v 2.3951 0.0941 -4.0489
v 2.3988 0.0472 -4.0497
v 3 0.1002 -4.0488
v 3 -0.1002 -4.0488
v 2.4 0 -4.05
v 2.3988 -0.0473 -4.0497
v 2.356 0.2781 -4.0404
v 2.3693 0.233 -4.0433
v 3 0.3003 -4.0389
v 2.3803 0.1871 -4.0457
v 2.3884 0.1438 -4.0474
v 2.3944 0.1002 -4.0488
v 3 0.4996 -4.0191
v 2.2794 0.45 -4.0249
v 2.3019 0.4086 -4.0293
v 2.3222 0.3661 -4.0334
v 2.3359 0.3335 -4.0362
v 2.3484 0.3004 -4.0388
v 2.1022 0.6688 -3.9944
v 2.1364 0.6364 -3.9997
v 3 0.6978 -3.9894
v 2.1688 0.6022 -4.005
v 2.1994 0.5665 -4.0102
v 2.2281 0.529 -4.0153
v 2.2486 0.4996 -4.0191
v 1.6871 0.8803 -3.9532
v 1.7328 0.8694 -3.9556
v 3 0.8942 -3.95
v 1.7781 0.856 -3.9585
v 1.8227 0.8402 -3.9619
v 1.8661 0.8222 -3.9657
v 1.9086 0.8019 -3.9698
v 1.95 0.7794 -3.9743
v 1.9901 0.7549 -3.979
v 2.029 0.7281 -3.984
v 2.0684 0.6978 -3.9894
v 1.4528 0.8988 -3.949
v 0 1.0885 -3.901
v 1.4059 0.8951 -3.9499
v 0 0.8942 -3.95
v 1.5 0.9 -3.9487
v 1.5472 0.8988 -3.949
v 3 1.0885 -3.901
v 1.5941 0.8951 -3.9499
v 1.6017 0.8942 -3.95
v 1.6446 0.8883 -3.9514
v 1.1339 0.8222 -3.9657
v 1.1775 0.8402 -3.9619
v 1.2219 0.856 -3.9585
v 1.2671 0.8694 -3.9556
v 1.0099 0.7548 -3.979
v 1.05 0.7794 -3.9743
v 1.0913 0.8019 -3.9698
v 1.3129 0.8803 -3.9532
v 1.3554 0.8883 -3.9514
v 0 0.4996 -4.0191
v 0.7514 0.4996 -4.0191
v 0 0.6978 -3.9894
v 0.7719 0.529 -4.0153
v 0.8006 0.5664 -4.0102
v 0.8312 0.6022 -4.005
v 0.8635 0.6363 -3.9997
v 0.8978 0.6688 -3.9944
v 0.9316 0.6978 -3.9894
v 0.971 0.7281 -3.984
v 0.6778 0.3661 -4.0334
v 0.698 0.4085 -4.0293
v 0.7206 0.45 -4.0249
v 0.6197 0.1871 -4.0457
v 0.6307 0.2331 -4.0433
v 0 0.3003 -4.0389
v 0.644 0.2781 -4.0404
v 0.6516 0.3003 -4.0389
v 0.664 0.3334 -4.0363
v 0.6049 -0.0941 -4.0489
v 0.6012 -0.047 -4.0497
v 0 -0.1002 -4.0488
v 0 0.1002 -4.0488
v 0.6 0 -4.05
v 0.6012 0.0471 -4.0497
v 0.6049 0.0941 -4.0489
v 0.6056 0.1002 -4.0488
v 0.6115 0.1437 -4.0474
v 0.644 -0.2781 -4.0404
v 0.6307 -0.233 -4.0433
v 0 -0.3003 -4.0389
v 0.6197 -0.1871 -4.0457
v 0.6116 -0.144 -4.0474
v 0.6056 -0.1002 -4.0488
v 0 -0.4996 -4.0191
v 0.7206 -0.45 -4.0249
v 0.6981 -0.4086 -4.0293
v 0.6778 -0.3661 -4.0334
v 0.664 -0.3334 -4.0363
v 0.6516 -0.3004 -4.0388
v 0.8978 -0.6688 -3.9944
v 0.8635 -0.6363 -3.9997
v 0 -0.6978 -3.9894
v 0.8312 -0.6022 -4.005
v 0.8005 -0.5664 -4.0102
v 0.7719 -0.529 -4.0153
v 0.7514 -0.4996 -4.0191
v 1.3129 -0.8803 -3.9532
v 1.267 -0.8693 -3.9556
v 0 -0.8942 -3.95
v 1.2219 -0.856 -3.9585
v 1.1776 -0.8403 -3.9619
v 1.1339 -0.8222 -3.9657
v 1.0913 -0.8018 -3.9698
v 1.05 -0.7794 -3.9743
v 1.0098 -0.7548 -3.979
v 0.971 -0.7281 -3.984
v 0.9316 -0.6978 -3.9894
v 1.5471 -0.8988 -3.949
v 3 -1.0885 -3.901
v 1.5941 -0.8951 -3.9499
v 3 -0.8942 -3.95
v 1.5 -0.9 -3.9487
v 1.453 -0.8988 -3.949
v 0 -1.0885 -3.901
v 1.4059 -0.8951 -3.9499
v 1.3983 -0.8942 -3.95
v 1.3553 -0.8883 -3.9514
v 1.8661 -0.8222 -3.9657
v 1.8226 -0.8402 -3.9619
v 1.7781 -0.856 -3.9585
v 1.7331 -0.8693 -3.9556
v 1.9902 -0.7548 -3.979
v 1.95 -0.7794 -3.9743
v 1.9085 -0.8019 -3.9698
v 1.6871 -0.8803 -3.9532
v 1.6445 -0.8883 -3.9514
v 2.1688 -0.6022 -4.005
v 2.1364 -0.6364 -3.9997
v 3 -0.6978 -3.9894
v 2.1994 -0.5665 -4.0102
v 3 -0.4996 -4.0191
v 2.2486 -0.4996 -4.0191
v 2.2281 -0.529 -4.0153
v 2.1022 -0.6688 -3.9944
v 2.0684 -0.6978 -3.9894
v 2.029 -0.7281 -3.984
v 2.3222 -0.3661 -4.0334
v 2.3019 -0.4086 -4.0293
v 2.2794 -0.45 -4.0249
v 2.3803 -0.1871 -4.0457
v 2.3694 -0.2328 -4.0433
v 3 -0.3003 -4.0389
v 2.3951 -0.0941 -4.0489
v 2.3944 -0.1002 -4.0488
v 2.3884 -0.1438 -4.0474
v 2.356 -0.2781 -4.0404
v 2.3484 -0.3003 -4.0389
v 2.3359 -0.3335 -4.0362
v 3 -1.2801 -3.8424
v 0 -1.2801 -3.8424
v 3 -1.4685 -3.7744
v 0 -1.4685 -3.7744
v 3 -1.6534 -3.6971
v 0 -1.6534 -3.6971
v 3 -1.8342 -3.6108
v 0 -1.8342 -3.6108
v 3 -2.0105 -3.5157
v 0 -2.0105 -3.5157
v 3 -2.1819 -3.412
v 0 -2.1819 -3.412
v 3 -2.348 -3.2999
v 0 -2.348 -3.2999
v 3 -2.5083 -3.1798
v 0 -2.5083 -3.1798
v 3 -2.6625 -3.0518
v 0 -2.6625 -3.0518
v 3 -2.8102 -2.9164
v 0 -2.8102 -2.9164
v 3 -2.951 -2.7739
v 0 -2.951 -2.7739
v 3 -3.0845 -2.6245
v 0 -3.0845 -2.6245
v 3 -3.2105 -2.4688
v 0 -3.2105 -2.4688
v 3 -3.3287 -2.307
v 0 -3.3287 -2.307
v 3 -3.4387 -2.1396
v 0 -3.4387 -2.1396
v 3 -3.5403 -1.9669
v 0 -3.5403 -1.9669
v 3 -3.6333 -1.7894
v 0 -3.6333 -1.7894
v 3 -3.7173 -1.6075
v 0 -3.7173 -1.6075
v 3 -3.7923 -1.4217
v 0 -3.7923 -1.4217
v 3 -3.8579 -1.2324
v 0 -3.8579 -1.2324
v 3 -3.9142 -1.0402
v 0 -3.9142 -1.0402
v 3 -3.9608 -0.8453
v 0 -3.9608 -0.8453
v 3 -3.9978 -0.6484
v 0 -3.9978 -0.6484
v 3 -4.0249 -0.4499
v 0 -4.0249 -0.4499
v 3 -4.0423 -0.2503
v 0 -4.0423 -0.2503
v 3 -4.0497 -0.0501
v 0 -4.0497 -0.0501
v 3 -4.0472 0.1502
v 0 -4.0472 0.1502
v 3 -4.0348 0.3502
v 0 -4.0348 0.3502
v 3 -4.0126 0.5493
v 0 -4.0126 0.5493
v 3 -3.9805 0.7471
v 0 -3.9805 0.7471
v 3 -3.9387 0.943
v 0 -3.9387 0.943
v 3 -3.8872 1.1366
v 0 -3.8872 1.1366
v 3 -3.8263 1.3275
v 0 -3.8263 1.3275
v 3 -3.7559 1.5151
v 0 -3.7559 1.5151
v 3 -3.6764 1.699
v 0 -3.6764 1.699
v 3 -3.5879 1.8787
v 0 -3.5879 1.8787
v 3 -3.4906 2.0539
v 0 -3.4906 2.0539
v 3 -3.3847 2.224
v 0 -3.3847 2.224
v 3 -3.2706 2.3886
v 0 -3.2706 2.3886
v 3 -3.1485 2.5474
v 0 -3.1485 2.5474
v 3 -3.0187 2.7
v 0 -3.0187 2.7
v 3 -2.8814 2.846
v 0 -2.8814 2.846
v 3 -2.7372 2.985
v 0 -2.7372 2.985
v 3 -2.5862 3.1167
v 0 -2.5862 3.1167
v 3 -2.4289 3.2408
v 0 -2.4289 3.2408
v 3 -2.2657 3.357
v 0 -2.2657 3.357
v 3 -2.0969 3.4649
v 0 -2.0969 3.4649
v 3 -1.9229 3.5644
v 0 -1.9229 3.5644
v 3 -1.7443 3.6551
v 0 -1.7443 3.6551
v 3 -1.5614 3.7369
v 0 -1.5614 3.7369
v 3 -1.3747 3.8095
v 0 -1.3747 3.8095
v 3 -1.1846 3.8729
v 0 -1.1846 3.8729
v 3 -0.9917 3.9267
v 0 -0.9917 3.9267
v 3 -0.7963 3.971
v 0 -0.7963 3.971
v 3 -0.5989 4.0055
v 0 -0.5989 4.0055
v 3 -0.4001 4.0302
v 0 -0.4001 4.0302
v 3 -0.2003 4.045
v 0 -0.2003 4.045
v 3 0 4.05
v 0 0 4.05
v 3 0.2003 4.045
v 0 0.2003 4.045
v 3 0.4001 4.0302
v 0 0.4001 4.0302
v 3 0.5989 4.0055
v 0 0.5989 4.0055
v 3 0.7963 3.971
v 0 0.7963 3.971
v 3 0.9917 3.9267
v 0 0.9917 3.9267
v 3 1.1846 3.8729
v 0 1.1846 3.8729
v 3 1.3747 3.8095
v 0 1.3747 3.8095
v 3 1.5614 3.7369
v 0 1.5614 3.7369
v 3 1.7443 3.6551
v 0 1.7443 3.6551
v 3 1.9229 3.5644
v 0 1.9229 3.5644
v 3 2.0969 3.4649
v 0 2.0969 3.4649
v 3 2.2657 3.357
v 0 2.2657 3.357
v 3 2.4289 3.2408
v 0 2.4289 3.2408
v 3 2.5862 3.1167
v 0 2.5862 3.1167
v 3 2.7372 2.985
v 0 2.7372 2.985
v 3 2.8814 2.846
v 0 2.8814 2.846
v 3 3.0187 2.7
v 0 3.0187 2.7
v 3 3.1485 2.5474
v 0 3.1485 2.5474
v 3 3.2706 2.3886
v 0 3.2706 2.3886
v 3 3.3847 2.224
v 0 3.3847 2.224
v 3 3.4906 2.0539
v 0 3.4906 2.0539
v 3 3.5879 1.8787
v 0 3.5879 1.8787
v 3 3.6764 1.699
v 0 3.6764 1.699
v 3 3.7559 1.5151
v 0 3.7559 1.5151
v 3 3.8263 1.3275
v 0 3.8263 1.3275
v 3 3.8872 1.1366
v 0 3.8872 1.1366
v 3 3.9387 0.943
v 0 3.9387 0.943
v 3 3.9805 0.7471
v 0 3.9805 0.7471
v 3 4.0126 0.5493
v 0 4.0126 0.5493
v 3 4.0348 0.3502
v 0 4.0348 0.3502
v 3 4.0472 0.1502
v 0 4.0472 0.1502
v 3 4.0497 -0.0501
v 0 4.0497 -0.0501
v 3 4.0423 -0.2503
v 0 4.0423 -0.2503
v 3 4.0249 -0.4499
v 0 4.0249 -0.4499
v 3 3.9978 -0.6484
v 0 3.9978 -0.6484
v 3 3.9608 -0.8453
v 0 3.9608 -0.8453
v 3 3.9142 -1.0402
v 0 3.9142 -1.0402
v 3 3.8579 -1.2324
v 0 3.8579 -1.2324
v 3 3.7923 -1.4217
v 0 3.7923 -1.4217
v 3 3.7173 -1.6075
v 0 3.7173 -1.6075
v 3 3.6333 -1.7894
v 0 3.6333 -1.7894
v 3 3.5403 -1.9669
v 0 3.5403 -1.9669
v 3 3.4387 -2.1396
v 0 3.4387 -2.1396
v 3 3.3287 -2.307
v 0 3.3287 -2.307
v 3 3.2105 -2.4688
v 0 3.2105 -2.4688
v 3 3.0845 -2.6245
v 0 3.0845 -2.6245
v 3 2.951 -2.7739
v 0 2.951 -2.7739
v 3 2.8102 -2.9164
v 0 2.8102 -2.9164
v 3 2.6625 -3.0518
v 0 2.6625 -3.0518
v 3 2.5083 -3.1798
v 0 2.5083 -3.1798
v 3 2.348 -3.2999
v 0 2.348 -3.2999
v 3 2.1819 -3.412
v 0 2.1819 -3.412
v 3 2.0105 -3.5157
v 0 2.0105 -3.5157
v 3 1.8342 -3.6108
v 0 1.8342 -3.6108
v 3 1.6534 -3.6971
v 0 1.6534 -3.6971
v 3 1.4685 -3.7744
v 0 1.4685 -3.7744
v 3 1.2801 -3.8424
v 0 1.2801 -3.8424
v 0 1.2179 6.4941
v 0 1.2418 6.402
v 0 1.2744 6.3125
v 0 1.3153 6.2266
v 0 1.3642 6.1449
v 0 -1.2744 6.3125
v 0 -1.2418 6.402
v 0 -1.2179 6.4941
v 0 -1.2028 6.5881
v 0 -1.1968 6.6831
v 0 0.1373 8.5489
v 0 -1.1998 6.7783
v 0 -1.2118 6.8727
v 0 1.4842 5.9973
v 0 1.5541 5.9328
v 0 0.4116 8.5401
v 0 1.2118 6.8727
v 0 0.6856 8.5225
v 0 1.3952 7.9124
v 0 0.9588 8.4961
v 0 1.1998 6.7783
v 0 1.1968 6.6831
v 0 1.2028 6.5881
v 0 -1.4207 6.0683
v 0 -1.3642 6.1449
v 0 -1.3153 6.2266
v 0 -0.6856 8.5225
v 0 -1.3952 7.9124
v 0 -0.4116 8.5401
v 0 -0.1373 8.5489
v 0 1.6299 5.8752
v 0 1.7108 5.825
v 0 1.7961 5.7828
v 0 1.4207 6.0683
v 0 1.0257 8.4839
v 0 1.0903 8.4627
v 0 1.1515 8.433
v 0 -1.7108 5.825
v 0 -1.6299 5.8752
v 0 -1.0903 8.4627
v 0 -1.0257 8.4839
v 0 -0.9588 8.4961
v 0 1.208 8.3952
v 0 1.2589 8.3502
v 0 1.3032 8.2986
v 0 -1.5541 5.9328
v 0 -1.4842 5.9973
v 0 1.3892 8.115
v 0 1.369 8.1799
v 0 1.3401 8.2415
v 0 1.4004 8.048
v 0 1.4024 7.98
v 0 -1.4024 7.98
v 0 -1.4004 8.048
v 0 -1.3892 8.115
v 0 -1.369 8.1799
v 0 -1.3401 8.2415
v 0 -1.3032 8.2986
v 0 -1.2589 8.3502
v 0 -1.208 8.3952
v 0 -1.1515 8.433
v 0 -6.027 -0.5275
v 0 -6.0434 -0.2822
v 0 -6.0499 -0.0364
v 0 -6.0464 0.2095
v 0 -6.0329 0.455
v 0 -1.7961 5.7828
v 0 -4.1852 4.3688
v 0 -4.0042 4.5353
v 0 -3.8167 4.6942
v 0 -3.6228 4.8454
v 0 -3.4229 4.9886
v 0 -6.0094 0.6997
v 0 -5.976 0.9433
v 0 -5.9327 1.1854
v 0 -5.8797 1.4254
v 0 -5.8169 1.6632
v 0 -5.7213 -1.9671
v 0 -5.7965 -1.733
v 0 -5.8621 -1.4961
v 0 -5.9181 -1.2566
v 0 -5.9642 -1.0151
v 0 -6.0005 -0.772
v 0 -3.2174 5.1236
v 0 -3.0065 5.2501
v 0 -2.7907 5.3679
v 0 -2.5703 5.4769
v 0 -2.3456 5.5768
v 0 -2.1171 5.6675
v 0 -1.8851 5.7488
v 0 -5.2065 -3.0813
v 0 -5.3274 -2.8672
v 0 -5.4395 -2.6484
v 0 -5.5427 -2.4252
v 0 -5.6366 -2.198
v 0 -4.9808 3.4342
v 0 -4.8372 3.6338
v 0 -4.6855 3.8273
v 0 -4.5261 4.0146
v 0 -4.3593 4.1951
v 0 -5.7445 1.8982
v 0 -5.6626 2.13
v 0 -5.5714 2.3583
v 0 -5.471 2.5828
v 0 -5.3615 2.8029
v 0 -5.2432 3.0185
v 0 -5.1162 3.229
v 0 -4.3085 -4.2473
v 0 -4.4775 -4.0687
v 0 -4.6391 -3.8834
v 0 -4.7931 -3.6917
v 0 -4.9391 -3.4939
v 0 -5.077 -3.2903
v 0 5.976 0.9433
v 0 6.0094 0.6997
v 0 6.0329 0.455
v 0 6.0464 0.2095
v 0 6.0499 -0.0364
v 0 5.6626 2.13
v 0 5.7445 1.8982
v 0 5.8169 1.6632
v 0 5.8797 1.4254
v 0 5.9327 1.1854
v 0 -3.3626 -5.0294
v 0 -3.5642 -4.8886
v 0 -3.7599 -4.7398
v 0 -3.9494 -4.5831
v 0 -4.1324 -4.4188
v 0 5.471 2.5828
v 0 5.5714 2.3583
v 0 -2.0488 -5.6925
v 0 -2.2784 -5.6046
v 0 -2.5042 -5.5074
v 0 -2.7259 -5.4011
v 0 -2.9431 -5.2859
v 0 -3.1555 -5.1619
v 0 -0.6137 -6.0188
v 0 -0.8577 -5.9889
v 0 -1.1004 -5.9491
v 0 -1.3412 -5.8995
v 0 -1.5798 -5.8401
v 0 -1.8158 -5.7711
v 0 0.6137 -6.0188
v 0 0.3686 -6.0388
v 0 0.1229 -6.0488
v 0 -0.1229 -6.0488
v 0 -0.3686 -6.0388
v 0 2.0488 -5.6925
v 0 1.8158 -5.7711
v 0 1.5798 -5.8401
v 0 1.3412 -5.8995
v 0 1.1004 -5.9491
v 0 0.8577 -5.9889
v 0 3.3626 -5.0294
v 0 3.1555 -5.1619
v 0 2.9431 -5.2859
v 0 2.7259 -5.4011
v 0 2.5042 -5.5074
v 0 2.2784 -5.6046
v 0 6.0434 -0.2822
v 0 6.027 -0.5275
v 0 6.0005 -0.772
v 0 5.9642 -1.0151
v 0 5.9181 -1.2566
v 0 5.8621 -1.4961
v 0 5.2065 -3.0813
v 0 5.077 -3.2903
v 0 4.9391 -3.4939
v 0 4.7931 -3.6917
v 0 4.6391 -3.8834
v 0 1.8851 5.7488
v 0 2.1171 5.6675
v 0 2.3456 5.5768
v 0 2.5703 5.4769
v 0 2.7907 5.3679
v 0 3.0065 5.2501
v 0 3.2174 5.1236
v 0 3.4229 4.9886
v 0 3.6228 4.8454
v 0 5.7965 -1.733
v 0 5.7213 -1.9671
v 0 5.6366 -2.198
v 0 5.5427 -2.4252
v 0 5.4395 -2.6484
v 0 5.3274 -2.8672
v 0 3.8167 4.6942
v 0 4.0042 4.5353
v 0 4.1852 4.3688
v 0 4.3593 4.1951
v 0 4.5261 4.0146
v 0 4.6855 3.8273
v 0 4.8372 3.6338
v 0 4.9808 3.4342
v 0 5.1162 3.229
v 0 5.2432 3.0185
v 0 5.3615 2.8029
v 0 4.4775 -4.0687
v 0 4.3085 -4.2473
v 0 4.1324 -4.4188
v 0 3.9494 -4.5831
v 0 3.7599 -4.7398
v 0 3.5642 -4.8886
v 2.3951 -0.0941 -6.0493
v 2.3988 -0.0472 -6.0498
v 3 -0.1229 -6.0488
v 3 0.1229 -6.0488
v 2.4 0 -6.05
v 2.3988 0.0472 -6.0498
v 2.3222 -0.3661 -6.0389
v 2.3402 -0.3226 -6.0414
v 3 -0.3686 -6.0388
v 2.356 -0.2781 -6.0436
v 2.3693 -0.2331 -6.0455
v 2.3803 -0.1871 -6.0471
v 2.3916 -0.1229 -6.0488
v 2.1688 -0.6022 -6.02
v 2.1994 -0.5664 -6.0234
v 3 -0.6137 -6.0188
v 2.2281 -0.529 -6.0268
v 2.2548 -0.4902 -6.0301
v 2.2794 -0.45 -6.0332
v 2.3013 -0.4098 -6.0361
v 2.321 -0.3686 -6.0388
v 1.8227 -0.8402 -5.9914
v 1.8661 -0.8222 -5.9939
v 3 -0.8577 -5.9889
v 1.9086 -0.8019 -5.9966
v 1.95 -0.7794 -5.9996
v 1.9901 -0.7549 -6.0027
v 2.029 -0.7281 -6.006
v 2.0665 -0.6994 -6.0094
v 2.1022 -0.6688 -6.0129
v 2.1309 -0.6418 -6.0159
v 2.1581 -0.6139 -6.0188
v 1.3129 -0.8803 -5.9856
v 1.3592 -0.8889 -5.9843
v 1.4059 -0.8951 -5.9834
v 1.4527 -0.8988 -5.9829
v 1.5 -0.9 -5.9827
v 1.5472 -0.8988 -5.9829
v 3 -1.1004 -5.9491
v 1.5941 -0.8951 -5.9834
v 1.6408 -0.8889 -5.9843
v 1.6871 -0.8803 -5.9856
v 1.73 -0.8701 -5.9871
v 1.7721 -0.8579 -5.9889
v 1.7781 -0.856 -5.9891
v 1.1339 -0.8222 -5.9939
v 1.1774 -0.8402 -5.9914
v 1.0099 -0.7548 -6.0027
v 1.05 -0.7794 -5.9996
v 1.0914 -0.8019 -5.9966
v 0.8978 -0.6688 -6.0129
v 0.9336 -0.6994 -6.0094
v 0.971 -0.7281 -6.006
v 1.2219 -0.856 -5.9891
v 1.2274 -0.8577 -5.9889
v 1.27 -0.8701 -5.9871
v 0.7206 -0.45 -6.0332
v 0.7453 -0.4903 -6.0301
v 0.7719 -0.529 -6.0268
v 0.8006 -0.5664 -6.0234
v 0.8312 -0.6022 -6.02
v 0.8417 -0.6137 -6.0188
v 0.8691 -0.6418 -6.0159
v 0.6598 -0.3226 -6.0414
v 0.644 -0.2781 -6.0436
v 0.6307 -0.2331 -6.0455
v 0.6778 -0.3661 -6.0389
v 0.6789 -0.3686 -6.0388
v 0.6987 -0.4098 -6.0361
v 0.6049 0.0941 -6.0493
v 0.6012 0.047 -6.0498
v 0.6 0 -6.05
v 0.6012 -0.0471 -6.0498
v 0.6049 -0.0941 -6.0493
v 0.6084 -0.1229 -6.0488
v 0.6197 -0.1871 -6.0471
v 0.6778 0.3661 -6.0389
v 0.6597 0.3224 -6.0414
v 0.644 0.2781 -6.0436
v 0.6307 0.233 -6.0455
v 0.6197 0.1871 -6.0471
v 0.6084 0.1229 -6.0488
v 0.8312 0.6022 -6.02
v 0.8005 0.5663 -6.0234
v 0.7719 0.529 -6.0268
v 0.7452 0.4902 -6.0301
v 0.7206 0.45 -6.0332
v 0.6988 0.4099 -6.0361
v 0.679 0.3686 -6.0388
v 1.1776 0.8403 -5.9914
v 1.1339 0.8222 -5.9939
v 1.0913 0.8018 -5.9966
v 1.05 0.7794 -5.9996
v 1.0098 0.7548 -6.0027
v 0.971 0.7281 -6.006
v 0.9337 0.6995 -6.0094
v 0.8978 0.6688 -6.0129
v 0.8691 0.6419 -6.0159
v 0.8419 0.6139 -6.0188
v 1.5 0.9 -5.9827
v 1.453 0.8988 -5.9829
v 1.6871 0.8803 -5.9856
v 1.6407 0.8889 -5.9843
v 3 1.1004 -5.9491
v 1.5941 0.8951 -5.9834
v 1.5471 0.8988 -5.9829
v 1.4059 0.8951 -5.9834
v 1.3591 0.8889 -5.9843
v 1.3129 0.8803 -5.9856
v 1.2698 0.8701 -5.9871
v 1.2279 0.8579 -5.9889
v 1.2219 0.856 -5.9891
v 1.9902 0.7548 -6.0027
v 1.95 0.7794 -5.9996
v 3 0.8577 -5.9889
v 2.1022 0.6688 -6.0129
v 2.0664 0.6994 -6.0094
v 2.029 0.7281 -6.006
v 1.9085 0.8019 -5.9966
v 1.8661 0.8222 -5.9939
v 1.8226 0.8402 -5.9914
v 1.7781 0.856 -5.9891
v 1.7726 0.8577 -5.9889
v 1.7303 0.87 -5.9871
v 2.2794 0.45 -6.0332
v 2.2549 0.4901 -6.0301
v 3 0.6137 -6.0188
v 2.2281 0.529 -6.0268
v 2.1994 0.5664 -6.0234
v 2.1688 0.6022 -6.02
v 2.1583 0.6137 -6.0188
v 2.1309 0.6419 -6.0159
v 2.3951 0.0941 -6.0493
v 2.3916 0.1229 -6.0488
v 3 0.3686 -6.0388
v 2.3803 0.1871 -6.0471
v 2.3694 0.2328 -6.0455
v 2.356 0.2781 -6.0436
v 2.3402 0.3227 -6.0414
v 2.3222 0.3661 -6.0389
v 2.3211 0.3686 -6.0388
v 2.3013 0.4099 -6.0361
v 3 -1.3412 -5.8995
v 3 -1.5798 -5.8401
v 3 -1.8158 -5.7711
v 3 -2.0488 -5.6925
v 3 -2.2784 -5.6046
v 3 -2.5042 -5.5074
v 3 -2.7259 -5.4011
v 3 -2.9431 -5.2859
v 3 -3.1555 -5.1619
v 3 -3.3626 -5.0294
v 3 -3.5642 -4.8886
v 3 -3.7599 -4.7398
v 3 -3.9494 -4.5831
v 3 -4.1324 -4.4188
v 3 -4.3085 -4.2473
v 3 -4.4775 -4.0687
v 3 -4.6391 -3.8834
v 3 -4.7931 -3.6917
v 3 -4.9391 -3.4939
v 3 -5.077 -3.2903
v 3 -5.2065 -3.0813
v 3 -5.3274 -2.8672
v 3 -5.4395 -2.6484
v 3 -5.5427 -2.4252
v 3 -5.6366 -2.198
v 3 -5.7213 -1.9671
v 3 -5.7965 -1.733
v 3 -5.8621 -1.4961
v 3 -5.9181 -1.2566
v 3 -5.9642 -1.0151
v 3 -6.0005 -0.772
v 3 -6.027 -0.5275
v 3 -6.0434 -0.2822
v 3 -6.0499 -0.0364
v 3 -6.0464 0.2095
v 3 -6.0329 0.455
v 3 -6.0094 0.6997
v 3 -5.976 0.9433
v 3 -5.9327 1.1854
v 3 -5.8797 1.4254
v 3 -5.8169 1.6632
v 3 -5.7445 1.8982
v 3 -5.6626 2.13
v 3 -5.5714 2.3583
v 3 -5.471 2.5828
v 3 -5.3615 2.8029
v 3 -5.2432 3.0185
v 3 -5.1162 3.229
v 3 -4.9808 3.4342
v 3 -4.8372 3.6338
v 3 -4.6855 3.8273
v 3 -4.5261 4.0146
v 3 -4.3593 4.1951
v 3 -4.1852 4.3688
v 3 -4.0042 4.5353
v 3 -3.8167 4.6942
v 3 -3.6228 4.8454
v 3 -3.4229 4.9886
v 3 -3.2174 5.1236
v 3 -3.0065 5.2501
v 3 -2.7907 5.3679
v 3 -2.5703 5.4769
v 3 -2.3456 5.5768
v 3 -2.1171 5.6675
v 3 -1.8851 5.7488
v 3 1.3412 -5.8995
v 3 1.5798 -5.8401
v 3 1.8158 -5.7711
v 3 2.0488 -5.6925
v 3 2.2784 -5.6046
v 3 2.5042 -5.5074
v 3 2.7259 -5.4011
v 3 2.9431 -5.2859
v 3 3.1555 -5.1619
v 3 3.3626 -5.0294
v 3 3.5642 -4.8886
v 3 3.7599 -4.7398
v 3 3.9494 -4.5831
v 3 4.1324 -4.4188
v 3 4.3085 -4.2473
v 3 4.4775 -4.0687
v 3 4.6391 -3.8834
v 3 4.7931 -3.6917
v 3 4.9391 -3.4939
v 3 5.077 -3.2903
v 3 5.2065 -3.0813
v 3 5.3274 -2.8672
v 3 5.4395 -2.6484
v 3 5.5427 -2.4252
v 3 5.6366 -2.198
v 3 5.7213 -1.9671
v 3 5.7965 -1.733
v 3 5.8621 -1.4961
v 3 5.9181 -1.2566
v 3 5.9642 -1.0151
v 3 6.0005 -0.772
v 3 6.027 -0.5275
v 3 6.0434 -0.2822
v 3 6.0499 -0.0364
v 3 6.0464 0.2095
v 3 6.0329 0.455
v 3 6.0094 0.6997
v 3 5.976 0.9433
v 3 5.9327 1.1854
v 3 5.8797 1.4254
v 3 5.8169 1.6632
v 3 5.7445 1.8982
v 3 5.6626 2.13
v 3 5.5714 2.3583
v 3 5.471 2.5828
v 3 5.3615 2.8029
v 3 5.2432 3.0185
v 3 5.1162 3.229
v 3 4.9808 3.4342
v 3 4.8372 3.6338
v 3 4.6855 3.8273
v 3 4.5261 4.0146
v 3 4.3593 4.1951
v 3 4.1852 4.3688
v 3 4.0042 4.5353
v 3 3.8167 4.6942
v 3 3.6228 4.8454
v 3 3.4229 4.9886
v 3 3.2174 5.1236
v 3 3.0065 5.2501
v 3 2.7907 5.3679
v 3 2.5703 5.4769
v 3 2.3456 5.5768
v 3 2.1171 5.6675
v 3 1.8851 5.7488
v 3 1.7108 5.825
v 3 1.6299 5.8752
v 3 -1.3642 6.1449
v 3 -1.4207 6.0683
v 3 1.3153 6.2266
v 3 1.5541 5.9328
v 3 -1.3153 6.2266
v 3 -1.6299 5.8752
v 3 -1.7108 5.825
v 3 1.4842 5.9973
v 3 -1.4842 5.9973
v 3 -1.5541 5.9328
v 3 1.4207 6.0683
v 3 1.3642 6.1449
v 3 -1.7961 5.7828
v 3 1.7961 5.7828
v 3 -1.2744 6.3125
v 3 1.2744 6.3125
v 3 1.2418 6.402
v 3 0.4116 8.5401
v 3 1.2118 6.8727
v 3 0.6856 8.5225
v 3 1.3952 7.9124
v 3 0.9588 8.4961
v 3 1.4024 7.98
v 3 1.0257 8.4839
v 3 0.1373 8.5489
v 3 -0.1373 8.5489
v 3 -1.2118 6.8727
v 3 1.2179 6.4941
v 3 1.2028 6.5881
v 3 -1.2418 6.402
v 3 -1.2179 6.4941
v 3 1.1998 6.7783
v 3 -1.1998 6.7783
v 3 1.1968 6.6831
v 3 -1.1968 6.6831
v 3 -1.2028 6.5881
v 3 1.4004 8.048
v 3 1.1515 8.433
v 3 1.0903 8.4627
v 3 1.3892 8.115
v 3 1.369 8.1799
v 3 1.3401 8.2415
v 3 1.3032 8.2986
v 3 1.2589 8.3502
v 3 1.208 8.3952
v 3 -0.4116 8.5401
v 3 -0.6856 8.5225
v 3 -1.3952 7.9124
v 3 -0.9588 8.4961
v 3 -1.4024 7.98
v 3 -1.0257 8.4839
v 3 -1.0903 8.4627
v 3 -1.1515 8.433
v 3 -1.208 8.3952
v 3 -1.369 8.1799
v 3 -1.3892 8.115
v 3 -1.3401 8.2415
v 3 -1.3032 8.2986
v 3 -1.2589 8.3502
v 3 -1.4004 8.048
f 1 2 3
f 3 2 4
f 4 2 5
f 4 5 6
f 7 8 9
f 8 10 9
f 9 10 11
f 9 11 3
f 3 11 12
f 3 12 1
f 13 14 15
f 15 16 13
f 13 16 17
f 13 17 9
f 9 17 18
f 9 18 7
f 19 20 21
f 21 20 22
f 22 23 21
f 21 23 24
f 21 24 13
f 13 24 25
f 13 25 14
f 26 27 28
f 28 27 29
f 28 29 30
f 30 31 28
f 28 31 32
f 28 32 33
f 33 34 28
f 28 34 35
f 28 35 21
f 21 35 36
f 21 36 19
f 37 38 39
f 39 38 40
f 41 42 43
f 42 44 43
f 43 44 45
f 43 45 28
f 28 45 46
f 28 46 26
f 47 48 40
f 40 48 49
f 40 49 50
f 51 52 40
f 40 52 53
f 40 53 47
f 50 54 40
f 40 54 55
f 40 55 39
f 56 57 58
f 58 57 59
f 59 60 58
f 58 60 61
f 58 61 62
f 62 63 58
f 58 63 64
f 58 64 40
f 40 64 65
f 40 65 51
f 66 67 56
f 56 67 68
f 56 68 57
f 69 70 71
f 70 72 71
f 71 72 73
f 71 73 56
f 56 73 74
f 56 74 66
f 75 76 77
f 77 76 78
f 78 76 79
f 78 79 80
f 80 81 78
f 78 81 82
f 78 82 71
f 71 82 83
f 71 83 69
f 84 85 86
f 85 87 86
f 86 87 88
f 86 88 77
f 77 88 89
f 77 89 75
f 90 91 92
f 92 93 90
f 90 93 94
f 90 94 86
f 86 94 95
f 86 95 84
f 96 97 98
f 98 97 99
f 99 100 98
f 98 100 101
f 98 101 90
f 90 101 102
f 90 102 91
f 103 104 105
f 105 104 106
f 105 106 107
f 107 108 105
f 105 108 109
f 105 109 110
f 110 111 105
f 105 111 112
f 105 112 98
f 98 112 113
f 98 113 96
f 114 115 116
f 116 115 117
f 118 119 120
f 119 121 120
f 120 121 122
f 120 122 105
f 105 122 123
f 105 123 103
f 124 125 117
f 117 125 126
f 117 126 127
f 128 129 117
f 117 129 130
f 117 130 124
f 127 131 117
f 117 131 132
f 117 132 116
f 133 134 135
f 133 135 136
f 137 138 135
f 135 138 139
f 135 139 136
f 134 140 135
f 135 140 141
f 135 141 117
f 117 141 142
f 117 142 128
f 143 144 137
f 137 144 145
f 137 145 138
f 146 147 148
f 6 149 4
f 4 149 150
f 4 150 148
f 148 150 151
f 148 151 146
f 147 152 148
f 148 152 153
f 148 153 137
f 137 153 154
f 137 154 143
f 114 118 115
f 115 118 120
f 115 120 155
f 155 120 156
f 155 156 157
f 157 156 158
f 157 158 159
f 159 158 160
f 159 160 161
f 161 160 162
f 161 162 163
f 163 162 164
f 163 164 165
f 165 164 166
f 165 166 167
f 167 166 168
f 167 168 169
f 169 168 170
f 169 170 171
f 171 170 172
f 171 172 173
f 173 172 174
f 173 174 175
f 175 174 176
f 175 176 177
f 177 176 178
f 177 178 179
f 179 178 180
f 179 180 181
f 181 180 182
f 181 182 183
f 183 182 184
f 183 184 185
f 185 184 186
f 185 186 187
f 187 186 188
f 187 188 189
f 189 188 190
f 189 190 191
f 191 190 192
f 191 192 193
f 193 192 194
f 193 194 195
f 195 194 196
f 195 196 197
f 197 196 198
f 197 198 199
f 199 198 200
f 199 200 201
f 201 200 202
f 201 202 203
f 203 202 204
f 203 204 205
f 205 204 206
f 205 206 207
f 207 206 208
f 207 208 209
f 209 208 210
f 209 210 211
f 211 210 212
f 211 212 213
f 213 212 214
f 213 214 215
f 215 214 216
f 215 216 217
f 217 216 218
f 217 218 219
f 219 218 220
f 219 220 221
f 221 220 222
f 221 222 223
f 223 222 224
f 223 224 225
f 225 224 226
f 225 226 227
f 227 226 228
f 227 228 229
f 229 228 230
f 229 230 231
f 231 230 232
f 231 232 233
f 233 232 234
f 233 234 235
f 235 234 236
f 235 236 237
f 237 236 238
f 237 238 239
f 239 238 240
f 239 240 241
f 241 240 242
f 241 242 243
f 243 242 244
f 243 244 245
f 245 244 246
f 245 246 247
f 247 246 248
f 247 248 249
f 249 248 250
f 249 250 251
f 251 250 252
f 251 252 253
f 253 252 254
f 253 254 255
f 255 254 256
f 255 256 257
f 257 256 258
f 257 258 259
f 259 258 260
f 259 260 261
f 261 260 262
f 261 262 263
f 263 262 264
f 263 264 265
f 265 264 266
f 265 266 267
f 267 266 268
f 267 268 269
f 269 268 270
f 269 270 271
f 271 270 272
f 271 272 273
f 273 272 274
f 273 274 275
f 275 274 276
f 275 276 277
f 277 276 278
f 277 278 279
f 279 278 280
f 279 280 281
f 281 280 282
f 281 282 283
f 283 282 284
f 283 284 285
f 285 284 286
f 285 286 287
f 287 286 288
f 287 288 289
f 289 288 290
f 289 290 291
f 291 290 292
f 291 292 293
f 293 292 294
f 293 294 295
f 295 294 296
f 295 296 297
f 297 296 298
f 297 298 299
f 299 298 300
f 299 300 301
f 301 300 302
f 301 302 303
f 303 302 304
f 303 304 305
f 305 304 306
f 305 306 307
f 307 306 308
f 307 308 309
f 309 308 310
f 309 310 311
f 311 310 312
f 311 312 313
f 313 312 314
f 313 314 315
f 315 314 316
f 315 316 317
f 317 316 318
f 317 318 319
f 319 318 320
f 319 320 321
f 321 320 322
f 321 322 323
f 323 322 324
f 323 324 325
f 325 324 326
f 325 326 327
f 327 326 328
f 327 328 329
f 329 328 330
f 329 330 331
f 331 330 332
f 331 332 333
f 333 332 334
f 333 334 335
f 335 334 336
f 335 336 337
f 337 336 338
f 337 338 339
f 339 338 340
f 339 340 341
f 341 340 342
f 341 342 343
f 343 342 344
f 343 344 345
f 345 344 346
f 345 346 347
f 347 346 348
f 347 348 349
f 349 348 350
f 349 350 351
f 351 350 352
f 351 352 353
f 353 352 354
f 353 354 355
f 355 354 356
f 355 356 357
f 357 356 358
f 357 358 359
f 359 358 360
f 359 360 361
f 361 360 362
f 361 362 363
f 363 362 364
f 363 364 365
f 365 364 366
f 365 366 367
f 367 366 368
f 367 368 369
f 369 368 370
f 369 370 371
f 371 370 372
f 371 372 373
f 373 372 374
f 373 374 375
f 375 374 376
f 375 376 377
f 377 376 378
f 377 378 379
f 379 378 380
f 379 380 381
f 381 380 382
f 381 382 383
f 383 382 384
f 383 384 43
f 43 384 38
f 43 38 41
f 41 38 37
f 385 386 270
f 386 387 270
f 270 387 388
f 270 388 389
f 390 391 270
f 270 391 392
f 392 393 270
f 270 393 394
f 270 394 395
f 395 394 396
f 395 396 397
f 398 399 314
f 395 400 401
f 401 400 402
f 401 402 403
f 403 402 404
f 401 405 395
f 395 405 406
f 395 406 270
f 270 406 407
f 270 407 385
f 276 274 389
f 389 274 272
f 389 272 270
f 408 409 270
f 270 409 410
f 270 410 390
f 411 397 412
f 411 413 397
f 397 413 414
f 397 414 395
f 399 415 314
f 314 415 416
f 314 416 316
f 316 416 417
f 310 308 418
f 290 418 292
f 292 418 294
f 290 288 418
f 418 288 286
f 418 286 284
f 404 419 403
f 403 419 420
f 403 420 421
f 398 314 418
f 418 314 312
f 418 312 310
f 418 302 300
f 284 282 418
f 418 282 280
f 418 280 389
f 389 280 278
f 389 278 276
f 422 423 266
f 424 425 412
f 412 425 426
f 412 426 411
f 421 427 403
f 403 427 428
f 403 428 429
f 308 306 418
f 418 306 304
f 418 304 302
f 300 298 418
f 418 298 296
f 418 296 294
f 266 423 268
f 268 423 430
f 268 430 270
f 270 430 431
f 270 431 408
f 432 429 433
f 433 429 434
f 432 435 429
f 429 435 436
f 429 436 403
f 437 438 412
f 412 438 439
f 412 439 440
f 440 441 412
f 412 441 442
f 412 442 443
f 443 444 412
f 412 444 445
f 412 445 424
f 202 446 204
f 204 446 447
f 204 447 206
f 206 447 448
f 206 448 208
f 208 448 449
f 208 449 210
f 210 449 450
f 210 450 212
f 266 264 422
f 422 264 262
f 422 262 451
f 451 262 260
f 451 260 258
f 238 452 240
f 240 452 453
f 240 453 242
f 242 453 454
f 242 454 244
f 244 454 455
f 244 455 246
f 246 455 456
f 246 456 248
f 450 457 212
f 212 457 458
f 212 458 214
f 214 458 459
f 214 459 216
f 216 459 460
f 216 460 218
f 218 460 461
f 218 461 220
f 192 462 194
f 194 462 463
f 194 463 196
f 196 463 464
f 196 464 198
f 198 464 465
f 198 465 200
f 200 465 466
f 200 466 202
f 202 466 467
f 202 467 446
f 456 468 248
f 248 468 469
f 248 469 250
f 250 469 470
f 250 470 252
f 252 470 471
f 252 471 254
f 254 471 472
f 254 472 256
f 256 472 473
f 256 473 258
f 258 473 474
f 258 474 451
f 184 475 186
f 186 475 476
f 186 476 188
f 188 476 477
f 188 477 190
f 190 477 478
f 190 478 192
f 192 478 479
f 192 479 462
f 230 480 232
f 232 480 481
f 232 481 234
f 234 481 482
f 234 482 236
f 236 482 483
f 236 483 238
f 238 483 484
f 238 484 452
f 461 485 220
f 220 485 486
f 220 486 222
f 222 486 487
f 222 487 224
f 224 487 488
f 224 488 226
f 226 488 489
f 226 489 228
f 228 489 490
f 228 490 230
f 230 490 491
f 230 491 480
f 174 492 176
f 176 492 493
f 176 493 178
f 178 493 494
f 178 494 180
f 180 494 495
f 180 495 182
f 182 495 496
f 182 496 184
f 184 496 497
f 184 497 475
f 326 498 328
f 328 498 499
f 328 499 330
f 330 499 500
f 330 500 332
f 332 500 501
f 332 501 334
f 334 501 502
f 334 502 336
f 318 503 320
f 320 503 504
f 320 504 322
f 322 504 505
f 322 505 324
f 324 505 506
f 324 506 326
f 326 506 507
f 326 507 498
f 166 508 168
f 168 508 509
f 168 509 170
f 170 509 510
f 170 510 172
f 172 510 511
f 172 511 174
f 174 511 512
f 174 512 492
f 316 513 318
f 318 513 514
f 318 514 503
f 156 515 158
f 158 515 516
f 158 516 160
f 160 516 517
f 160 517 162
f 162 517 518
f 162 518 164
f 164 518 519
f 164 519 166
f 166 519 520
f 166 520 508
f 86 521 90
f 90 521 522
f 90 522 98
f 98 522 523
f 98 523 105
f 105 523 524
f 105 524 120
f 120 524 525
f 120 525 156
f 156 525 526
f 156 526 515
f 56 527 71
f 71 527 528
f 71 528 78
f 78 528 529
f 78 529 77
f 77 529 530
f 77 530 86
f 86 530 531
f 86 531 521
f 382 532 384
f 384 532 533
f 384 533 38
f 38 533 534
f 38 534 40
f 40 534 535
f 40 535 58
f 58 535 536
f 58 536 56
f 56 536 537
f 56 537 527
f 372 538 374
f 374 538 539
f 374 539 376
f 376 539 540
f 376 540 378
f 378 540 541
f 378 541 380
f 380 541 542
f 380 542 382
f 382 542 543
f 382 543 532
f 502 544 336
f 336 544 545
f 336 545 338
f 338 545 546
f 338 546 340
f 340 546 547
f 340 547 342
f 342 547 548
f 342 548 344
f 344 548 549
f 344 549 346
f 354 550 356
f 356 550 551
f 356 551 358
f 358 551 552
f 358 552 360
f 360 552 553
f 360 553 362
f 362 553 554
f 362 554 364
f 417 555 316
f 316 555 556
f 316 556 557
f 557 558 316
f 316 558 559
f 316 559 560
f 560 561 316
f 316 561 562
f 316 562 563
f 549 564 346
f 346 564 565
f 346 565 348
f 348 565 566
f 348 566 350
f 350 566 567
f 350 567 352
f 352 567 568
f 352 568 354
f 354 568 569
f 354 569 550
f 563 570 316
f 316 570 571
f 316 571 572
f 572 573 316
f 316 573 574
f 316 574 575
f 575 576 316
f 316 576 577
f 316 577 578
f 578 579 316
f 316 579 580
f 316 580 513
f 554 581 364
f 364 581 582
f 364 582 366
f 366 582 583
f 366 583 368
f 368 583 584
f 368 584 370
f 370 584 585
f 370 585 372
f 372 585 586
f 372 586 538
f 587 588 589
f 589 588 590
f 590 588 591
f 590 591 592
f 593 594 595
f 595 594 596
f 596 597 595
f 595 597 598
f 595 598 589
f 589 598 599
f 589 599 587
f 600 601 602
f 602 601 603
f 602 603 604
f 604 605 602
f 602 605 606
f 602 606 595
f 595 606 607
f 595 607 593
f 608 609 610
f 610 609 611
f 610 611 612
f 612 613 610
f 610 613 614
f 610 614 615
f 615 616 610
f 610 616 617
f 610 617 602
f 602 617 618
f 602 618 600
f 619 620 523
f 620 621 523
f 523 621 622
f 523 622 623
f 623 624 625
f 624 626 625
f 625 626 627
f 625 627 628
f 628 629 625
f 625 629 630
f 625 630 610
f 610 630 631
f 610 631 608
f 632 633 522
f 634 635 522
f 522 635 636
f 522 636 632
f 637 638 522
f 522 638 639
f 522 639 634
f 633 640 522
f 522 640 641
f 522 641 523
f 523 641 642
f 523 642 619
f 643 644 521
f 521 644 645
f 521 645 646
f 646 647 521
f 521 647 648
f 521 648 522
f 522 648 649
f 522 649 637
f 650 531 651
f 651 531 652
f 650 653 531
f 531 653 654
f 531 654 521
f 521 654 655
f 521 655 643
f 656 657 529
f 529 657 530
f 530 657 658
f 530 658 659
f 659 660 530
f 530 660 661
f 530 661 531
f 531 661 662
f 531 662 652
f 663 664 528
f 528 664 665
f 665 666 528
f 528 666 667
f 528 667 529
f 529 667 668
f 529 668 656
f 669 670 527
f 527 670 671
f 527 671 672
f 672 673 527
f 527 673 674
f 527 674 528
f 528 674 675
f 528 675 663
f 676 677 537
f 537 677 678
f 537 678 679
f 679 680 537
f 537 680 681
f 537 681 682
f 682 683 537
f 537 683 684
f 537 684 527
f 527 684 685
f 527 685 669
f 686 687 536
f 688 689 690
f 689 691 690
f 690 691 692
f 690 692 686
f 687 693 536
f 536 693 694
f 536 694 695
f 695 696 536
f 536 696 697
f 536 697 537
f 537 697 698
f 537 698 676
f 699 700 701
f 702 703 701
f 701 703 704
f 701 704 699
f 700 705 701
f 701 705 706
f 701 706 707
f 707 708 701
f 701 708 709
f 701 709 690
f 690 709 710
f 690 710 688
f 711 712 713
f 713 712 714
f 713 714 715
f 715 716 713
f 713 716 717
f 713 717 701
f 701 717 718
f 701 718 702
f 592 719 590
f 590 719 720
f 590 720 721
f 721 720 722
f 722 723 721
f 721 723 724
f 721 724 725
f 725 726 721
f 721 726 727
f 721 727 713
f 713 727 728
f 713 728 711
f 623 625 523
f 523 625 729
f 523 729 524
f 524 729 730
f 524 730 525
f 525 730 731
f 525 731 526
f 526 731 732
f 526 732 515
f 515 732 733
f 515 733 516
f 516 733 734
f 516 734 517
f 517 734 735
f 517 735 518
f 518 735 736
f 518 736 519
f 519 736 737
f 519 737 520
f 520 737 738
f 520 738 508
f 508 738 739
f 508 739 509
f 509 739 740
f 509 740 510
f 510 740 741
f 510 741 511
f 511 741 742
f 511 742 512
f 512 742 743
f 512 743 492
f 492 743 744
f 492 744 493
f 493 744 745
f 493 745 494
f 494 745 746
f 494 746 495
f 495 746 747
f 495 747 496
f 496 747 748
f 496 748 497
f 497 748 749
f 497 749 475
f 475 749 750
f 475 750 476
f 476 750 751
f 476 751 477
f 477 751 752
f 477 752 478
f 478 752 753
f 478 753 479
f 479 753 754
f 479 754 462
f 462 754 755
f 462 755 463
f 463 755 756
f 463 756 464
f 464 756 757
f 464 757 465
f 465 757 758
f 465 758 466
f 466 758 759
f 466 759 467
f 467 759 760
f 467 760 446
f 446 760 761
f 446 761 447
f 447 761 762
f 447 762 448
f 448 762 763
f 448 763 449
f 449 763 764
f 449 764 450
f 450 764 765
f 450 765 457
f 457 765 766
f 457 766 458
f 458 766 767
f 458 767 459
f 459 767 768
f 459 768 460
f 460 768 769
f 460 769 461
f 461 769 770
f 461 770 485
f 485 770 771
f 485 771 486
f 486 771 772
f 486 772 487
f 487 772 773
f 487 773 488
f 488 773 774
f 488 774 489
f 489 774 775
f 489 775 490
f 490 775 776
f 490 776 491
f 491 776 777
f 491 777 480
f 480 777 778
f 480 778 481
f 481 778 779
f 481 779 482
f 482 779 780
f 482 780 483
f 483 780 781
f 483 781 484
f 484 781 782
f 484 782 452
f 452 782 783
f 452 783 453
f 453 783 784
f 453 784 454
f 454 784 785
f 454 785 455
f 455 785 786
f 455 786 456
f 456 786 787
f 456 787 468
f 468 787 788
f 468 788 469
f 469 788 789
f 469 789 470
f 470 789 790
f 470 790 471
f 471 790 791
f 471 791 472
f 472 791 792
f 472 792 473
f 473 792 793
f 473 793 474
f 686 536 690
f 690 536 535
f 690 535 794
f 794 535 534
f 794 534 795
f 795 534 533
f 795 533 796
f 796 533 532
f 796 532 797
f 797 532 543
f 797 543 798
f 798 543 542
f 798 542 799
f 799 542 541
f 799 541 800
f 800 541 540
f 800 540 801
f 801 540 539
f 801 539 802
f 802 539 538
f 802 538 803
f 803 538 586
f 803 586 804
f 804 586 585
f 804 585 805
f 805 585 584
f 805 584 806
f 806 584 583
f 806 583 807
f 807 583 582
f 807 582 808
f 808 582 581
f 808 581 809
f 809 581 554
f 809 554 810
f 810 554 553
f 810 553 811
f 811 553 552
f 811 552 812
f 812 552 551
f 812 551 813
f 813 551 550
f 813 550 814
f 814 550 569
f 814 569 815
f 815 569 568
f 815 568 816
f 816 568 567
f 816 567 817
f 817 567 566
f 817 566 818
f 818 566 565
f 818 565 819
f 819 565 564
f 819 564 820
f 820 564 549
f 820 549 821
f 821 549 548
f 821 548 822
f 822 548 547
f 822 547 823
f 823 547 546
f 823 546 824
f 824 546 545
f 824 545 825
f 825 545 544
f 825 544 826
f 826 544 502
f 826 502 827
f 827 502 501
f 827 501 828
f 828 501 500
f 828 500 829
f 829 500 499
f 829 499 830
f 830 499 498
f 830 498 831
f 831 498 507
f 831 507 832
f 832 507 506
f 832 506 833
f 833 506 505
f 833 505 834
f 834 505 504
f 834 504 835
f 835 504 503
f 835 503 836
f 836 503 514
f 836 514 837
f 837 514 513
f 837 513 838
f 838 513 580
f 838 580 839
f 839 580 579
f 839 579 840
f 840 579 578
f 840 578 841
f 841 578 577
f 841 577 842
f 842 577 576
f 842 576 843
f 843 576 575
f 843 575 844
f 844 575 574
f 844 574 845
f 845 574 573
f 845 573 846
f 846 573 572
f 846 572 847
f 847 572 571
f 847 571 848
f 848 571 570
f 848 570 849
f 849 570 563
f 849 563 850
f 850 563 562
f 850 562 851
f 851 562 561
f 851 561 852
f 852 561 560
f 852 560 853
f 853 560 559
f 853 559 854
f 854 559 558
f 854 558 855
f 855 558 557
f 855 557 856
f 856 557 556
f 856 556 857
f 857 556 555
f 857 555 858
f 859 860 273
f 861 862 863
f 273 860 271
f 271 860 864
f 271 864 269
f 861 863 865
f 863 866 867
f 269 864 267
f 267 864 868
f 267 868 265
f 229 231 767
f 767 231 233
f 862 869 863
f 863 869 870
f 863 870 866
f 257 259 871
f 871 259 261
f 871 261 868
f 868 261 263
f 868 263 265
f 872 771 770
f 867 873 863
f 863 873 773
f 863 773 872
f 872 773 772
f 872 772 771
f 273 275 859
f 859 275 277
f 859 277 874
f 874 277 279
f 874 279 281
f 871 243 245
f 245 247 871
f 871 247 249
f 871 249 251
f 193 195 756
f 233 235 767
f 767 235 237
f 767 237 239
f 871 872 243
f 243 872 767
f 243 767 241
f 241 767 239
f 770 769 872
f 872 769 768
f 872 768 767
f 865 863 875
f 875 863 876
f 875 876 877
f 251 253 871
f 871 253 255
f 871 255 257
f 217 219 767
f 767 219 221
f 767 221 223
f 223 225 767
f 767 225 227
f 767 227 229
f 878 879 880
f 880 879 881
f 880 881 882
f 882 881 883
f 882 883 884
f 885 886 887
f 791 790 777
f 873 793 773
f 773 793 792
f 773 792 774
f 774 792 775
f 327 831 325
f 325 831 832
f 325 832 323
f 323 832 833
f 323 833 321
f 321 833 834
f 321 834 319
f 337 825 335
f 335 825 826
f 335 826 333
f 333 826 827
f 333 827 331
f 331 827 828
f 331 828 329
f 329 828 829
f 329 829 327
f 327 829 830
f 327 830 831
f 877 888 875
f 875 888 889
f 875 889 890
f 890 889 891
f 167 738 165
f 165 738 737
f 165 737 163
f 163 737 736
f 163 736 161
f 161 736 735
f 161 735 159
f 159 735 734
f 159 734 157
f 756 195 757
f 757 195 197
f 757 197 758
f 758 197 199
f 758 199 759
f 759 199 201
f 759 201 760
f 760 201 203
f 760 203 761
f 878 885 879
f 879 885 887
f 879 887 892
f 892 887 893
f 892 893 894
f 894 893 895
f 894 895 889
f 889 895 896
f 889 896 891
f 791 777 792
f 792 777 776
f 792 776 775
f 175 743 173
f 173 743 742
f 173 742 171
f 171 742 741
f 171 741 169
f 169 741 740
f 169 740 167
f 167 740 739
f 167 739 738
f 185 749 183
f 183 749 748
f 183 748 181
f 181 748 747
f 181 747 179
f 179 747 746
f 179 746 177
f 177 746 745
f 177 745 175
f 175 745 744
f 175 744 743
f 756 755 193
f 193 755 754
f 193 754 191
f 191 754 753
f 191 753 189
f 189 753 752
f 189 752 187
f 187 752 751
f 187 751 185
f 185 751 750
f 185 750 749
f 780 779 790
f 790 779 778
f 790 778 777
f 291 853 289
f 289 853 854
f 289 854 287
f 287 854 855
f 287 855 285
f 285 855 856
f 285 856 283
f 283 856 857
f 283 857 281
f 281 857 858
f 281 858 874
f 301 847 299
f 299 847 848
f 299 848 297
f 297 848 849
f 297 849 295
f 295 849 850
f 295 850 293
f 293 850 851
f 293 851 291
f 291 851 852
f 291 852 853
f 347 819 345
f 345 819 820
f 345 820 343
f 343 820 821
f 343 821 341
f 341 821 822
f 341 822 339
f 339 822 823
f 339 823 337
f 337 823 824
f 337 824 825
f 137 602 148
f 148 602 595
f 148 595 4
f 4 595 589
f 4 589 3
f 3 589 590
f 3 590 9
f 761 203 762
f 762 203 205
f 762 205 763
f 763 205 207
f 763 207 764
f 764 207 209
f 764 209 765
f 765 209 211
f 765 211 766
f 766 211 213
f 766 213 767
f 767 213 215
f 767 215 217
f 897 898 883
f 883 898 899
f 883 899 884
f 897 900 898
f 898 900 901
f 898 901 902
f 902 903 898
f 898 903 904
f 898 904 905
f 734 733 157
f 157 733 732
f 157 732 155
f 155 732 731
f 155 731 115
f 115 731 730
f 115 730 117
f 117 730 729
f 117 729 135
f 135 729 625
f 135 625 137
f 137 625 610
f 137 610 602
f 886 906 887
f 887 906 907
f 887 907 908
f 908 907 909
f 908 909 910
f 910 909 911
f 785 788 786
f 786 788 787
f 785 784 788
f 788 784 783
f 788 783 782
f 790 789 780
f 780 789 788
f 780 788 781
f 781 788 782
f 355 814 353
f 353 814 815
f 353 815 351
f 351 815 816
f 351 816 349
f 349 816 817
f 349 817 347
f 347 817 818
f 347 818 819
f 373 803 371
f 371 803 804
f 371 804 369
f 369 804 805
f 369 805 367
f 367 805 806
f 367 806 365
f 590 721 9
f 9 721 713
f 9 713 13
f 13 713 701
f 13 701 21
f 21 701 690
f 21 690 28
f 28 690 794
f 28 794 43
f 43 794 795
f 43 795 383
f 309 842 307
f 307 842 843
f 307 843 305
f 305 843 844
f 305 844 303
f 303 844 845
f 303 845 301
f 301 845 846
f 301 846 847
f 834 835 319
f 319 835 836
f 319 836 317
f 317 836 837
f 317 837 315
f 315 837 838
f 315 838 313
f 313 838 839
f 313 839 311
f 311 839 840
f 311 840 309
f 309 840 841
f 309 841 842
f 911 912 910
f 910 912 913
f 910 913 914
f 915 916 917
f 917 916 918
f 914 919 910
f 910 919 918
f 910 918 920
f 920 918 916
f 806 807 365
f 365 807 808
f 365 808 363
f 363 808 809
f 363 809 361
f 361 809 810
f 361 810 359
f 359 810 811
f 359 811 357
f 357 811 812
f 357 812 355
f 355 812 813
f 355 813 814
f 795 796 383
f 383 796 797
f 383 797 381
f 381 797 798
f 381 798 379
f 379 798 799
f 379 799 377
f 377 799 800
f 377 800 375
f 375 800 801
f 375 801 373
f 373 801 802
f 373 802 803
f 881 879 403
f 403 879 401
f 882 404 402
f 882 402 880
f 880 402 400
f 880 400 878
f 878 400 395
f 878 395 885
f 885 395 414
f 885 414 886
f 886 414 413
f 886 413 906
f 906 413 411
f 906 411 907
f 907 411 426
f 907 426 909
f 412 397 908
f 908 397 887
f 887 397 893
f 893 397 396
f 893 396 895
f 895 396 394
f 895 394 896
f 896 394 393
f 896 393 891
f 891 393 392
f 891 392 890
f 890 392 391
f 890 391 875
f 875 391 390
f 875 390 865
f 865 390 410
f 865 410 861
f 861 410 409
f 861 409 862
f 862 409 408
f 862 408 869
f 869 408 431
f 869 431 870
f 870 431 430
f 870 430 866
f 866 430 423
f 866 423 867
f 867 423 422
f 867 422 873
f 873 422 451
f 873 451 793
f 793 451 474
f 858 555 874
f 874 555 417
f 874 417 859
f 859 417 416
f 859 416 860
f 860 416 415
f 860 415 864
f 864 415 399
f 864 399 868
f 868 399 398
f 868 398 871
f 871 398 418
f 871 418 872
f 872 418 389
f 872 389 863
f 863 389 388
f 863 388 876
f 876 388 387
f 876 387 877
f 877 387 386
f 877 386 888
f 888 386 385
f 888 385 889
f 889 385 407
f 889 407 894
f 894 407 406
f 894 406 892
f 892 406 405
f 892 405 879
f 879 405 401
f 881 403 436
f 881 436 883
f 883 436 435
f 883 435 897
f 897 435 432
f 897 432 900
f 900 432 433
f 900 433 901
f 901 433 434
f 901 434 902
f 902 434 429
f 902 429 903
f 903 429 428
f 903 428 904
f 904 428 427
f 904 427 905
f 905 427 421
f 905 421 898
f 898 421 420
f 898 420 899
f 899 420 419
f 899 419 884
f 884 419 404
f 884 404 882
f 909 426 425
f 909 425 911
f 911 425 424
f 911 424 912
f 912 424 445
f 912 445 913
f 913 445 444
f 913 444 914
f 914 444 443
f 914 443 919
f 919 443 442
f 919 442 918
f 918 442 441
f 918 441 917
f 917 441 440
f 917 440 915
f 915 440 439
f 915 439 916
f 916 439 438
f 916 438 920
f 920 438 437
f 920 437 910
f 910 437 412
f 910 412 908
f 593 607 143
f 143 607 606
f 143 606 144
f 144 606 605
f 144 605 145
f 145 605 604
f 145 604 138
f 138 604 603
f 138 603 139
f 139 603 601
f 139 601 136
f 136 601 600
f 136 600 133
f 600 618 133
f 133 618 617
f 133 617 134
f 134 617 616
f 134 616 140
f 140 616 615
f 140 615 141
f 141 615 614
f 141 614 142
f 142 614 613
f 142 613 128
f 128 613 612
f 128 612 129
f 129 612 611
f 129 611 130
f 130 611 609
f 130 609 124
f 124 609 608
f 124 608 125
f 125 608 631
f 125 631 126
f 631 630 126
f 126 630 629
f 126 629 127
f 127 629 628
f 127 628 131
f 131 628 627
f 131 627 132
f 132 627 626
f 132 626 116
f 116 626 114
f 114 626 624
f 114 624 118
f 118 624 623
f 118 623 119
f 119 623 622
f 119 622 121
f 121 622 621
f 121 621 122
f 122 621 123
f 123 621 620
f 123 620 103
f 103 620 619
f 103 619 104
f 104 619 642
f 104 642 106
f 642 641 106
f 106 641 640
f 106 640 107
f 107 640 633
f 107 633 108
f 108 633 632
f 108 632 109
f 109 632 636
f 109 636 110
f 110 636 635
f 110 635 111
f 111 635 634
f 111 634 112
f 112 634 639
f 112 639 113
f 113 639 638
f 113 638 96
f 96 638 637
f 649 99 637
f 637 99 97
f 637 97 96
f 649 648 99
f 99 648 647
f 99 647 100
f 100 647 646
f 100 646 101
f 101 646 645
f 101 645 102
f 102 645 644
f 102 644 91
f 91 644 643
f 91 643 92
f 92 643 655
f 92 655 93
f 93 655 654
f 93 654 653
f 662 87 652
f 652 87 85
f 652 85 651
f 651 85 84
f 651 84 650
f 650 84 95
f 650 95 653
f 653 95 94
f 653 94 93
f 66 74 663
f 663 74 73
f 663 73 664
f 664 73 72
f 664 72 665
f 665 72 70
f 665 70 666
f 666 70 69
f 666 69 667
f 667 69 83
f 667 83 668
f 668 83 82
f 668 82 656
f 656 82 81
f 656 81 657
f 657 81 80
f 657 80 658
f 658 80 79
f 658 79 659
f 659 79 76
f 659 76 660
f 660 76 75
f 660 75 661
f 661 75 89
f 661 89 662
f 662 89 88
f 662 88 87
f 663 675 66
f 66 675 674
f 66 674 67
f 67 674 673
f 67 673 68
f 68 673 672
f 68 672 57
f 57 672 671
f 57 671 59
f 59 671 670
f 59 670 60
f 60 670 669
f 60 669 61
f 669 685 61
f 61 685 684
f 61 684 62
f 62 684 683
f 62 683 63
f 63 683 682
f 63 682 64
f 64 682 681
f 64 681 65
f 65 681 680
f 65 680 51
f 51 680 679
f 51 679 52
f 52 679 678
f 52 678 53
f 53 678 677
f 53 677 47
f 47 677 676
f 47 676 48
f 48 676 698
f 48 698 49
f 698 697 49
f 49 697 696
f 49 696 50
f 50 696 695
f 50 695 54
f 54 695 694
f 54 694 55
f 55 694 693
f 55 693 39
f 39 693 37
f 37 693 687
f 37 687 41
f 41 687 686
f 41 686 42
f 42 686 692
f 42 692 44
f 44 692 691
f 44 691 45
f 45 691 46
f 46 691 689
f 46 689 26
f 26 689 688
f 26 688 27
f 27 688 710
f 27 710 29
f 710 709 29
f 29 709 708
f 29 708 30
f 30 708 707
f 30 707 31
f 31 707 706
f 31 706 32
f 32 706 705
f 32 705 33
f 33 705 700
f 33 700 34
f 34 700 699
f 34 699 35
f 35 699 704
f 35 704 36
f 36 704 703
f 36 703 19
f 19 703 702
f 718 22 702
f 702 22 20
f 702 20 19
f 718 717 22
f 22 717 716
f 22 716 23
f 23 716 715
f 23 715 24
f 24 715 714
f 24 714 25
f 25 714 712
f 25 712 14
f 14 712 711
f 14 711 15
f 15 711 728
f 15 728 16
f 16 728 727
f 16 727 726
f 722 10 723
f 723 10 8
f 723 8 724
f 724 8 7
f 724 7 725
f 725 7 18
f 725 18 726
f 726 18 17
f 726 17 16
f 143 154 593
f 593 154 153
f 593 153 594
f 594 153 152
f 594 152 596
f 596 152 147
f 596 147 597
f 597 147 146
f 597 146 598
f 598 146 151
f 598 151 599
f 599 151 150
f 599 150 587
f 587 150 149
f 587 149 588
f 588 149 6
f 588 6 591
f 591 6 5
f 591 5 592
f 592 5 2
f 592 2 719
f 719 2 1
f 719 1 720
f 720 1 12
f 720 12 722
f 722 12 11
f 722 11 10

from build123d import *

# Parameters (mm, degrees)
ESQUISSE1_W        = 3
ESQUISSE1_H        = 2
BOSS_EXTRU_1_DEPTH = 3
CONG_1_R           = 1
CONG_3_R           = 0.5
ESQUISSE4_W        = 0.9
ESQUISSE4_H        = 6.05


with BuildPart() as part:
    # Esquisse1 → Révolution1 (revolve)
    with BuildSketch(Plane.XY):
        with Locations((1.5, 5.05)):
            Rectangle(ESQUISSE1_W, ESQUISSE1_H)
    revolve(axis=Axis((-3.996004355, 0, 0), (1, 0, 0)))

    # Esquisse2 → Boss.-Extru.1 (add)
    with BuildSketch(Plane.ZY):
        with BuildLine():
            Line((5.958086906, -1.050571475), (8.420106288, -1.484691919))
            ThreePointArc((8.420106288, -1.484691919), (8.55, 0), (8.420106288, 1.484691919))
            Line((8.420106288, 1.484691919), (5.958086906, 1.050571475))
            ThreePointArc((5.958086906, 1.050571475), (6.05, 0), (5.958086906, -1.050571475))
        make_face()
    extrude(amount=-BOSS_EXTRU_1_DEPTH)

    # Congé1
    cong_1_edges = [part.edges().sort_by_distance(p)[0] for p in [
        (1.5, -1.050571475, 5.958086906),
        (1.5, 1.050571475, 5.958086906),
    ]]
    fillet(cong_1_edges, radius=CONG_1_R)

    # Congé3
    cong_3_edges = [part.edges().sort_by_distance(p)[0] for p in [
        (1.5, 1.484691919, 8.420106288),
        (1.5, -1.484691919, 8.420106288),
    ]]
    fillet(cong_3_edges, radius=CONG_3_R)

    # Esquisse4 → Dégagement M21 (revolve, cut)
    with BuildSketch(Plane(origin=(1.5, 0, 0), x_dir=(0, -1, 0), z_dir=(1, 0, 0))):
        with Locations((0.45, 3.025)):
            Rectangle(ESQUISSE4_W, ESQUISSE4_H)
    revolve(axis=Axis((1.5, 0, 6.35), (0, 0, -1)), mode=Mode.SUBTRACT)


solid = part.part
